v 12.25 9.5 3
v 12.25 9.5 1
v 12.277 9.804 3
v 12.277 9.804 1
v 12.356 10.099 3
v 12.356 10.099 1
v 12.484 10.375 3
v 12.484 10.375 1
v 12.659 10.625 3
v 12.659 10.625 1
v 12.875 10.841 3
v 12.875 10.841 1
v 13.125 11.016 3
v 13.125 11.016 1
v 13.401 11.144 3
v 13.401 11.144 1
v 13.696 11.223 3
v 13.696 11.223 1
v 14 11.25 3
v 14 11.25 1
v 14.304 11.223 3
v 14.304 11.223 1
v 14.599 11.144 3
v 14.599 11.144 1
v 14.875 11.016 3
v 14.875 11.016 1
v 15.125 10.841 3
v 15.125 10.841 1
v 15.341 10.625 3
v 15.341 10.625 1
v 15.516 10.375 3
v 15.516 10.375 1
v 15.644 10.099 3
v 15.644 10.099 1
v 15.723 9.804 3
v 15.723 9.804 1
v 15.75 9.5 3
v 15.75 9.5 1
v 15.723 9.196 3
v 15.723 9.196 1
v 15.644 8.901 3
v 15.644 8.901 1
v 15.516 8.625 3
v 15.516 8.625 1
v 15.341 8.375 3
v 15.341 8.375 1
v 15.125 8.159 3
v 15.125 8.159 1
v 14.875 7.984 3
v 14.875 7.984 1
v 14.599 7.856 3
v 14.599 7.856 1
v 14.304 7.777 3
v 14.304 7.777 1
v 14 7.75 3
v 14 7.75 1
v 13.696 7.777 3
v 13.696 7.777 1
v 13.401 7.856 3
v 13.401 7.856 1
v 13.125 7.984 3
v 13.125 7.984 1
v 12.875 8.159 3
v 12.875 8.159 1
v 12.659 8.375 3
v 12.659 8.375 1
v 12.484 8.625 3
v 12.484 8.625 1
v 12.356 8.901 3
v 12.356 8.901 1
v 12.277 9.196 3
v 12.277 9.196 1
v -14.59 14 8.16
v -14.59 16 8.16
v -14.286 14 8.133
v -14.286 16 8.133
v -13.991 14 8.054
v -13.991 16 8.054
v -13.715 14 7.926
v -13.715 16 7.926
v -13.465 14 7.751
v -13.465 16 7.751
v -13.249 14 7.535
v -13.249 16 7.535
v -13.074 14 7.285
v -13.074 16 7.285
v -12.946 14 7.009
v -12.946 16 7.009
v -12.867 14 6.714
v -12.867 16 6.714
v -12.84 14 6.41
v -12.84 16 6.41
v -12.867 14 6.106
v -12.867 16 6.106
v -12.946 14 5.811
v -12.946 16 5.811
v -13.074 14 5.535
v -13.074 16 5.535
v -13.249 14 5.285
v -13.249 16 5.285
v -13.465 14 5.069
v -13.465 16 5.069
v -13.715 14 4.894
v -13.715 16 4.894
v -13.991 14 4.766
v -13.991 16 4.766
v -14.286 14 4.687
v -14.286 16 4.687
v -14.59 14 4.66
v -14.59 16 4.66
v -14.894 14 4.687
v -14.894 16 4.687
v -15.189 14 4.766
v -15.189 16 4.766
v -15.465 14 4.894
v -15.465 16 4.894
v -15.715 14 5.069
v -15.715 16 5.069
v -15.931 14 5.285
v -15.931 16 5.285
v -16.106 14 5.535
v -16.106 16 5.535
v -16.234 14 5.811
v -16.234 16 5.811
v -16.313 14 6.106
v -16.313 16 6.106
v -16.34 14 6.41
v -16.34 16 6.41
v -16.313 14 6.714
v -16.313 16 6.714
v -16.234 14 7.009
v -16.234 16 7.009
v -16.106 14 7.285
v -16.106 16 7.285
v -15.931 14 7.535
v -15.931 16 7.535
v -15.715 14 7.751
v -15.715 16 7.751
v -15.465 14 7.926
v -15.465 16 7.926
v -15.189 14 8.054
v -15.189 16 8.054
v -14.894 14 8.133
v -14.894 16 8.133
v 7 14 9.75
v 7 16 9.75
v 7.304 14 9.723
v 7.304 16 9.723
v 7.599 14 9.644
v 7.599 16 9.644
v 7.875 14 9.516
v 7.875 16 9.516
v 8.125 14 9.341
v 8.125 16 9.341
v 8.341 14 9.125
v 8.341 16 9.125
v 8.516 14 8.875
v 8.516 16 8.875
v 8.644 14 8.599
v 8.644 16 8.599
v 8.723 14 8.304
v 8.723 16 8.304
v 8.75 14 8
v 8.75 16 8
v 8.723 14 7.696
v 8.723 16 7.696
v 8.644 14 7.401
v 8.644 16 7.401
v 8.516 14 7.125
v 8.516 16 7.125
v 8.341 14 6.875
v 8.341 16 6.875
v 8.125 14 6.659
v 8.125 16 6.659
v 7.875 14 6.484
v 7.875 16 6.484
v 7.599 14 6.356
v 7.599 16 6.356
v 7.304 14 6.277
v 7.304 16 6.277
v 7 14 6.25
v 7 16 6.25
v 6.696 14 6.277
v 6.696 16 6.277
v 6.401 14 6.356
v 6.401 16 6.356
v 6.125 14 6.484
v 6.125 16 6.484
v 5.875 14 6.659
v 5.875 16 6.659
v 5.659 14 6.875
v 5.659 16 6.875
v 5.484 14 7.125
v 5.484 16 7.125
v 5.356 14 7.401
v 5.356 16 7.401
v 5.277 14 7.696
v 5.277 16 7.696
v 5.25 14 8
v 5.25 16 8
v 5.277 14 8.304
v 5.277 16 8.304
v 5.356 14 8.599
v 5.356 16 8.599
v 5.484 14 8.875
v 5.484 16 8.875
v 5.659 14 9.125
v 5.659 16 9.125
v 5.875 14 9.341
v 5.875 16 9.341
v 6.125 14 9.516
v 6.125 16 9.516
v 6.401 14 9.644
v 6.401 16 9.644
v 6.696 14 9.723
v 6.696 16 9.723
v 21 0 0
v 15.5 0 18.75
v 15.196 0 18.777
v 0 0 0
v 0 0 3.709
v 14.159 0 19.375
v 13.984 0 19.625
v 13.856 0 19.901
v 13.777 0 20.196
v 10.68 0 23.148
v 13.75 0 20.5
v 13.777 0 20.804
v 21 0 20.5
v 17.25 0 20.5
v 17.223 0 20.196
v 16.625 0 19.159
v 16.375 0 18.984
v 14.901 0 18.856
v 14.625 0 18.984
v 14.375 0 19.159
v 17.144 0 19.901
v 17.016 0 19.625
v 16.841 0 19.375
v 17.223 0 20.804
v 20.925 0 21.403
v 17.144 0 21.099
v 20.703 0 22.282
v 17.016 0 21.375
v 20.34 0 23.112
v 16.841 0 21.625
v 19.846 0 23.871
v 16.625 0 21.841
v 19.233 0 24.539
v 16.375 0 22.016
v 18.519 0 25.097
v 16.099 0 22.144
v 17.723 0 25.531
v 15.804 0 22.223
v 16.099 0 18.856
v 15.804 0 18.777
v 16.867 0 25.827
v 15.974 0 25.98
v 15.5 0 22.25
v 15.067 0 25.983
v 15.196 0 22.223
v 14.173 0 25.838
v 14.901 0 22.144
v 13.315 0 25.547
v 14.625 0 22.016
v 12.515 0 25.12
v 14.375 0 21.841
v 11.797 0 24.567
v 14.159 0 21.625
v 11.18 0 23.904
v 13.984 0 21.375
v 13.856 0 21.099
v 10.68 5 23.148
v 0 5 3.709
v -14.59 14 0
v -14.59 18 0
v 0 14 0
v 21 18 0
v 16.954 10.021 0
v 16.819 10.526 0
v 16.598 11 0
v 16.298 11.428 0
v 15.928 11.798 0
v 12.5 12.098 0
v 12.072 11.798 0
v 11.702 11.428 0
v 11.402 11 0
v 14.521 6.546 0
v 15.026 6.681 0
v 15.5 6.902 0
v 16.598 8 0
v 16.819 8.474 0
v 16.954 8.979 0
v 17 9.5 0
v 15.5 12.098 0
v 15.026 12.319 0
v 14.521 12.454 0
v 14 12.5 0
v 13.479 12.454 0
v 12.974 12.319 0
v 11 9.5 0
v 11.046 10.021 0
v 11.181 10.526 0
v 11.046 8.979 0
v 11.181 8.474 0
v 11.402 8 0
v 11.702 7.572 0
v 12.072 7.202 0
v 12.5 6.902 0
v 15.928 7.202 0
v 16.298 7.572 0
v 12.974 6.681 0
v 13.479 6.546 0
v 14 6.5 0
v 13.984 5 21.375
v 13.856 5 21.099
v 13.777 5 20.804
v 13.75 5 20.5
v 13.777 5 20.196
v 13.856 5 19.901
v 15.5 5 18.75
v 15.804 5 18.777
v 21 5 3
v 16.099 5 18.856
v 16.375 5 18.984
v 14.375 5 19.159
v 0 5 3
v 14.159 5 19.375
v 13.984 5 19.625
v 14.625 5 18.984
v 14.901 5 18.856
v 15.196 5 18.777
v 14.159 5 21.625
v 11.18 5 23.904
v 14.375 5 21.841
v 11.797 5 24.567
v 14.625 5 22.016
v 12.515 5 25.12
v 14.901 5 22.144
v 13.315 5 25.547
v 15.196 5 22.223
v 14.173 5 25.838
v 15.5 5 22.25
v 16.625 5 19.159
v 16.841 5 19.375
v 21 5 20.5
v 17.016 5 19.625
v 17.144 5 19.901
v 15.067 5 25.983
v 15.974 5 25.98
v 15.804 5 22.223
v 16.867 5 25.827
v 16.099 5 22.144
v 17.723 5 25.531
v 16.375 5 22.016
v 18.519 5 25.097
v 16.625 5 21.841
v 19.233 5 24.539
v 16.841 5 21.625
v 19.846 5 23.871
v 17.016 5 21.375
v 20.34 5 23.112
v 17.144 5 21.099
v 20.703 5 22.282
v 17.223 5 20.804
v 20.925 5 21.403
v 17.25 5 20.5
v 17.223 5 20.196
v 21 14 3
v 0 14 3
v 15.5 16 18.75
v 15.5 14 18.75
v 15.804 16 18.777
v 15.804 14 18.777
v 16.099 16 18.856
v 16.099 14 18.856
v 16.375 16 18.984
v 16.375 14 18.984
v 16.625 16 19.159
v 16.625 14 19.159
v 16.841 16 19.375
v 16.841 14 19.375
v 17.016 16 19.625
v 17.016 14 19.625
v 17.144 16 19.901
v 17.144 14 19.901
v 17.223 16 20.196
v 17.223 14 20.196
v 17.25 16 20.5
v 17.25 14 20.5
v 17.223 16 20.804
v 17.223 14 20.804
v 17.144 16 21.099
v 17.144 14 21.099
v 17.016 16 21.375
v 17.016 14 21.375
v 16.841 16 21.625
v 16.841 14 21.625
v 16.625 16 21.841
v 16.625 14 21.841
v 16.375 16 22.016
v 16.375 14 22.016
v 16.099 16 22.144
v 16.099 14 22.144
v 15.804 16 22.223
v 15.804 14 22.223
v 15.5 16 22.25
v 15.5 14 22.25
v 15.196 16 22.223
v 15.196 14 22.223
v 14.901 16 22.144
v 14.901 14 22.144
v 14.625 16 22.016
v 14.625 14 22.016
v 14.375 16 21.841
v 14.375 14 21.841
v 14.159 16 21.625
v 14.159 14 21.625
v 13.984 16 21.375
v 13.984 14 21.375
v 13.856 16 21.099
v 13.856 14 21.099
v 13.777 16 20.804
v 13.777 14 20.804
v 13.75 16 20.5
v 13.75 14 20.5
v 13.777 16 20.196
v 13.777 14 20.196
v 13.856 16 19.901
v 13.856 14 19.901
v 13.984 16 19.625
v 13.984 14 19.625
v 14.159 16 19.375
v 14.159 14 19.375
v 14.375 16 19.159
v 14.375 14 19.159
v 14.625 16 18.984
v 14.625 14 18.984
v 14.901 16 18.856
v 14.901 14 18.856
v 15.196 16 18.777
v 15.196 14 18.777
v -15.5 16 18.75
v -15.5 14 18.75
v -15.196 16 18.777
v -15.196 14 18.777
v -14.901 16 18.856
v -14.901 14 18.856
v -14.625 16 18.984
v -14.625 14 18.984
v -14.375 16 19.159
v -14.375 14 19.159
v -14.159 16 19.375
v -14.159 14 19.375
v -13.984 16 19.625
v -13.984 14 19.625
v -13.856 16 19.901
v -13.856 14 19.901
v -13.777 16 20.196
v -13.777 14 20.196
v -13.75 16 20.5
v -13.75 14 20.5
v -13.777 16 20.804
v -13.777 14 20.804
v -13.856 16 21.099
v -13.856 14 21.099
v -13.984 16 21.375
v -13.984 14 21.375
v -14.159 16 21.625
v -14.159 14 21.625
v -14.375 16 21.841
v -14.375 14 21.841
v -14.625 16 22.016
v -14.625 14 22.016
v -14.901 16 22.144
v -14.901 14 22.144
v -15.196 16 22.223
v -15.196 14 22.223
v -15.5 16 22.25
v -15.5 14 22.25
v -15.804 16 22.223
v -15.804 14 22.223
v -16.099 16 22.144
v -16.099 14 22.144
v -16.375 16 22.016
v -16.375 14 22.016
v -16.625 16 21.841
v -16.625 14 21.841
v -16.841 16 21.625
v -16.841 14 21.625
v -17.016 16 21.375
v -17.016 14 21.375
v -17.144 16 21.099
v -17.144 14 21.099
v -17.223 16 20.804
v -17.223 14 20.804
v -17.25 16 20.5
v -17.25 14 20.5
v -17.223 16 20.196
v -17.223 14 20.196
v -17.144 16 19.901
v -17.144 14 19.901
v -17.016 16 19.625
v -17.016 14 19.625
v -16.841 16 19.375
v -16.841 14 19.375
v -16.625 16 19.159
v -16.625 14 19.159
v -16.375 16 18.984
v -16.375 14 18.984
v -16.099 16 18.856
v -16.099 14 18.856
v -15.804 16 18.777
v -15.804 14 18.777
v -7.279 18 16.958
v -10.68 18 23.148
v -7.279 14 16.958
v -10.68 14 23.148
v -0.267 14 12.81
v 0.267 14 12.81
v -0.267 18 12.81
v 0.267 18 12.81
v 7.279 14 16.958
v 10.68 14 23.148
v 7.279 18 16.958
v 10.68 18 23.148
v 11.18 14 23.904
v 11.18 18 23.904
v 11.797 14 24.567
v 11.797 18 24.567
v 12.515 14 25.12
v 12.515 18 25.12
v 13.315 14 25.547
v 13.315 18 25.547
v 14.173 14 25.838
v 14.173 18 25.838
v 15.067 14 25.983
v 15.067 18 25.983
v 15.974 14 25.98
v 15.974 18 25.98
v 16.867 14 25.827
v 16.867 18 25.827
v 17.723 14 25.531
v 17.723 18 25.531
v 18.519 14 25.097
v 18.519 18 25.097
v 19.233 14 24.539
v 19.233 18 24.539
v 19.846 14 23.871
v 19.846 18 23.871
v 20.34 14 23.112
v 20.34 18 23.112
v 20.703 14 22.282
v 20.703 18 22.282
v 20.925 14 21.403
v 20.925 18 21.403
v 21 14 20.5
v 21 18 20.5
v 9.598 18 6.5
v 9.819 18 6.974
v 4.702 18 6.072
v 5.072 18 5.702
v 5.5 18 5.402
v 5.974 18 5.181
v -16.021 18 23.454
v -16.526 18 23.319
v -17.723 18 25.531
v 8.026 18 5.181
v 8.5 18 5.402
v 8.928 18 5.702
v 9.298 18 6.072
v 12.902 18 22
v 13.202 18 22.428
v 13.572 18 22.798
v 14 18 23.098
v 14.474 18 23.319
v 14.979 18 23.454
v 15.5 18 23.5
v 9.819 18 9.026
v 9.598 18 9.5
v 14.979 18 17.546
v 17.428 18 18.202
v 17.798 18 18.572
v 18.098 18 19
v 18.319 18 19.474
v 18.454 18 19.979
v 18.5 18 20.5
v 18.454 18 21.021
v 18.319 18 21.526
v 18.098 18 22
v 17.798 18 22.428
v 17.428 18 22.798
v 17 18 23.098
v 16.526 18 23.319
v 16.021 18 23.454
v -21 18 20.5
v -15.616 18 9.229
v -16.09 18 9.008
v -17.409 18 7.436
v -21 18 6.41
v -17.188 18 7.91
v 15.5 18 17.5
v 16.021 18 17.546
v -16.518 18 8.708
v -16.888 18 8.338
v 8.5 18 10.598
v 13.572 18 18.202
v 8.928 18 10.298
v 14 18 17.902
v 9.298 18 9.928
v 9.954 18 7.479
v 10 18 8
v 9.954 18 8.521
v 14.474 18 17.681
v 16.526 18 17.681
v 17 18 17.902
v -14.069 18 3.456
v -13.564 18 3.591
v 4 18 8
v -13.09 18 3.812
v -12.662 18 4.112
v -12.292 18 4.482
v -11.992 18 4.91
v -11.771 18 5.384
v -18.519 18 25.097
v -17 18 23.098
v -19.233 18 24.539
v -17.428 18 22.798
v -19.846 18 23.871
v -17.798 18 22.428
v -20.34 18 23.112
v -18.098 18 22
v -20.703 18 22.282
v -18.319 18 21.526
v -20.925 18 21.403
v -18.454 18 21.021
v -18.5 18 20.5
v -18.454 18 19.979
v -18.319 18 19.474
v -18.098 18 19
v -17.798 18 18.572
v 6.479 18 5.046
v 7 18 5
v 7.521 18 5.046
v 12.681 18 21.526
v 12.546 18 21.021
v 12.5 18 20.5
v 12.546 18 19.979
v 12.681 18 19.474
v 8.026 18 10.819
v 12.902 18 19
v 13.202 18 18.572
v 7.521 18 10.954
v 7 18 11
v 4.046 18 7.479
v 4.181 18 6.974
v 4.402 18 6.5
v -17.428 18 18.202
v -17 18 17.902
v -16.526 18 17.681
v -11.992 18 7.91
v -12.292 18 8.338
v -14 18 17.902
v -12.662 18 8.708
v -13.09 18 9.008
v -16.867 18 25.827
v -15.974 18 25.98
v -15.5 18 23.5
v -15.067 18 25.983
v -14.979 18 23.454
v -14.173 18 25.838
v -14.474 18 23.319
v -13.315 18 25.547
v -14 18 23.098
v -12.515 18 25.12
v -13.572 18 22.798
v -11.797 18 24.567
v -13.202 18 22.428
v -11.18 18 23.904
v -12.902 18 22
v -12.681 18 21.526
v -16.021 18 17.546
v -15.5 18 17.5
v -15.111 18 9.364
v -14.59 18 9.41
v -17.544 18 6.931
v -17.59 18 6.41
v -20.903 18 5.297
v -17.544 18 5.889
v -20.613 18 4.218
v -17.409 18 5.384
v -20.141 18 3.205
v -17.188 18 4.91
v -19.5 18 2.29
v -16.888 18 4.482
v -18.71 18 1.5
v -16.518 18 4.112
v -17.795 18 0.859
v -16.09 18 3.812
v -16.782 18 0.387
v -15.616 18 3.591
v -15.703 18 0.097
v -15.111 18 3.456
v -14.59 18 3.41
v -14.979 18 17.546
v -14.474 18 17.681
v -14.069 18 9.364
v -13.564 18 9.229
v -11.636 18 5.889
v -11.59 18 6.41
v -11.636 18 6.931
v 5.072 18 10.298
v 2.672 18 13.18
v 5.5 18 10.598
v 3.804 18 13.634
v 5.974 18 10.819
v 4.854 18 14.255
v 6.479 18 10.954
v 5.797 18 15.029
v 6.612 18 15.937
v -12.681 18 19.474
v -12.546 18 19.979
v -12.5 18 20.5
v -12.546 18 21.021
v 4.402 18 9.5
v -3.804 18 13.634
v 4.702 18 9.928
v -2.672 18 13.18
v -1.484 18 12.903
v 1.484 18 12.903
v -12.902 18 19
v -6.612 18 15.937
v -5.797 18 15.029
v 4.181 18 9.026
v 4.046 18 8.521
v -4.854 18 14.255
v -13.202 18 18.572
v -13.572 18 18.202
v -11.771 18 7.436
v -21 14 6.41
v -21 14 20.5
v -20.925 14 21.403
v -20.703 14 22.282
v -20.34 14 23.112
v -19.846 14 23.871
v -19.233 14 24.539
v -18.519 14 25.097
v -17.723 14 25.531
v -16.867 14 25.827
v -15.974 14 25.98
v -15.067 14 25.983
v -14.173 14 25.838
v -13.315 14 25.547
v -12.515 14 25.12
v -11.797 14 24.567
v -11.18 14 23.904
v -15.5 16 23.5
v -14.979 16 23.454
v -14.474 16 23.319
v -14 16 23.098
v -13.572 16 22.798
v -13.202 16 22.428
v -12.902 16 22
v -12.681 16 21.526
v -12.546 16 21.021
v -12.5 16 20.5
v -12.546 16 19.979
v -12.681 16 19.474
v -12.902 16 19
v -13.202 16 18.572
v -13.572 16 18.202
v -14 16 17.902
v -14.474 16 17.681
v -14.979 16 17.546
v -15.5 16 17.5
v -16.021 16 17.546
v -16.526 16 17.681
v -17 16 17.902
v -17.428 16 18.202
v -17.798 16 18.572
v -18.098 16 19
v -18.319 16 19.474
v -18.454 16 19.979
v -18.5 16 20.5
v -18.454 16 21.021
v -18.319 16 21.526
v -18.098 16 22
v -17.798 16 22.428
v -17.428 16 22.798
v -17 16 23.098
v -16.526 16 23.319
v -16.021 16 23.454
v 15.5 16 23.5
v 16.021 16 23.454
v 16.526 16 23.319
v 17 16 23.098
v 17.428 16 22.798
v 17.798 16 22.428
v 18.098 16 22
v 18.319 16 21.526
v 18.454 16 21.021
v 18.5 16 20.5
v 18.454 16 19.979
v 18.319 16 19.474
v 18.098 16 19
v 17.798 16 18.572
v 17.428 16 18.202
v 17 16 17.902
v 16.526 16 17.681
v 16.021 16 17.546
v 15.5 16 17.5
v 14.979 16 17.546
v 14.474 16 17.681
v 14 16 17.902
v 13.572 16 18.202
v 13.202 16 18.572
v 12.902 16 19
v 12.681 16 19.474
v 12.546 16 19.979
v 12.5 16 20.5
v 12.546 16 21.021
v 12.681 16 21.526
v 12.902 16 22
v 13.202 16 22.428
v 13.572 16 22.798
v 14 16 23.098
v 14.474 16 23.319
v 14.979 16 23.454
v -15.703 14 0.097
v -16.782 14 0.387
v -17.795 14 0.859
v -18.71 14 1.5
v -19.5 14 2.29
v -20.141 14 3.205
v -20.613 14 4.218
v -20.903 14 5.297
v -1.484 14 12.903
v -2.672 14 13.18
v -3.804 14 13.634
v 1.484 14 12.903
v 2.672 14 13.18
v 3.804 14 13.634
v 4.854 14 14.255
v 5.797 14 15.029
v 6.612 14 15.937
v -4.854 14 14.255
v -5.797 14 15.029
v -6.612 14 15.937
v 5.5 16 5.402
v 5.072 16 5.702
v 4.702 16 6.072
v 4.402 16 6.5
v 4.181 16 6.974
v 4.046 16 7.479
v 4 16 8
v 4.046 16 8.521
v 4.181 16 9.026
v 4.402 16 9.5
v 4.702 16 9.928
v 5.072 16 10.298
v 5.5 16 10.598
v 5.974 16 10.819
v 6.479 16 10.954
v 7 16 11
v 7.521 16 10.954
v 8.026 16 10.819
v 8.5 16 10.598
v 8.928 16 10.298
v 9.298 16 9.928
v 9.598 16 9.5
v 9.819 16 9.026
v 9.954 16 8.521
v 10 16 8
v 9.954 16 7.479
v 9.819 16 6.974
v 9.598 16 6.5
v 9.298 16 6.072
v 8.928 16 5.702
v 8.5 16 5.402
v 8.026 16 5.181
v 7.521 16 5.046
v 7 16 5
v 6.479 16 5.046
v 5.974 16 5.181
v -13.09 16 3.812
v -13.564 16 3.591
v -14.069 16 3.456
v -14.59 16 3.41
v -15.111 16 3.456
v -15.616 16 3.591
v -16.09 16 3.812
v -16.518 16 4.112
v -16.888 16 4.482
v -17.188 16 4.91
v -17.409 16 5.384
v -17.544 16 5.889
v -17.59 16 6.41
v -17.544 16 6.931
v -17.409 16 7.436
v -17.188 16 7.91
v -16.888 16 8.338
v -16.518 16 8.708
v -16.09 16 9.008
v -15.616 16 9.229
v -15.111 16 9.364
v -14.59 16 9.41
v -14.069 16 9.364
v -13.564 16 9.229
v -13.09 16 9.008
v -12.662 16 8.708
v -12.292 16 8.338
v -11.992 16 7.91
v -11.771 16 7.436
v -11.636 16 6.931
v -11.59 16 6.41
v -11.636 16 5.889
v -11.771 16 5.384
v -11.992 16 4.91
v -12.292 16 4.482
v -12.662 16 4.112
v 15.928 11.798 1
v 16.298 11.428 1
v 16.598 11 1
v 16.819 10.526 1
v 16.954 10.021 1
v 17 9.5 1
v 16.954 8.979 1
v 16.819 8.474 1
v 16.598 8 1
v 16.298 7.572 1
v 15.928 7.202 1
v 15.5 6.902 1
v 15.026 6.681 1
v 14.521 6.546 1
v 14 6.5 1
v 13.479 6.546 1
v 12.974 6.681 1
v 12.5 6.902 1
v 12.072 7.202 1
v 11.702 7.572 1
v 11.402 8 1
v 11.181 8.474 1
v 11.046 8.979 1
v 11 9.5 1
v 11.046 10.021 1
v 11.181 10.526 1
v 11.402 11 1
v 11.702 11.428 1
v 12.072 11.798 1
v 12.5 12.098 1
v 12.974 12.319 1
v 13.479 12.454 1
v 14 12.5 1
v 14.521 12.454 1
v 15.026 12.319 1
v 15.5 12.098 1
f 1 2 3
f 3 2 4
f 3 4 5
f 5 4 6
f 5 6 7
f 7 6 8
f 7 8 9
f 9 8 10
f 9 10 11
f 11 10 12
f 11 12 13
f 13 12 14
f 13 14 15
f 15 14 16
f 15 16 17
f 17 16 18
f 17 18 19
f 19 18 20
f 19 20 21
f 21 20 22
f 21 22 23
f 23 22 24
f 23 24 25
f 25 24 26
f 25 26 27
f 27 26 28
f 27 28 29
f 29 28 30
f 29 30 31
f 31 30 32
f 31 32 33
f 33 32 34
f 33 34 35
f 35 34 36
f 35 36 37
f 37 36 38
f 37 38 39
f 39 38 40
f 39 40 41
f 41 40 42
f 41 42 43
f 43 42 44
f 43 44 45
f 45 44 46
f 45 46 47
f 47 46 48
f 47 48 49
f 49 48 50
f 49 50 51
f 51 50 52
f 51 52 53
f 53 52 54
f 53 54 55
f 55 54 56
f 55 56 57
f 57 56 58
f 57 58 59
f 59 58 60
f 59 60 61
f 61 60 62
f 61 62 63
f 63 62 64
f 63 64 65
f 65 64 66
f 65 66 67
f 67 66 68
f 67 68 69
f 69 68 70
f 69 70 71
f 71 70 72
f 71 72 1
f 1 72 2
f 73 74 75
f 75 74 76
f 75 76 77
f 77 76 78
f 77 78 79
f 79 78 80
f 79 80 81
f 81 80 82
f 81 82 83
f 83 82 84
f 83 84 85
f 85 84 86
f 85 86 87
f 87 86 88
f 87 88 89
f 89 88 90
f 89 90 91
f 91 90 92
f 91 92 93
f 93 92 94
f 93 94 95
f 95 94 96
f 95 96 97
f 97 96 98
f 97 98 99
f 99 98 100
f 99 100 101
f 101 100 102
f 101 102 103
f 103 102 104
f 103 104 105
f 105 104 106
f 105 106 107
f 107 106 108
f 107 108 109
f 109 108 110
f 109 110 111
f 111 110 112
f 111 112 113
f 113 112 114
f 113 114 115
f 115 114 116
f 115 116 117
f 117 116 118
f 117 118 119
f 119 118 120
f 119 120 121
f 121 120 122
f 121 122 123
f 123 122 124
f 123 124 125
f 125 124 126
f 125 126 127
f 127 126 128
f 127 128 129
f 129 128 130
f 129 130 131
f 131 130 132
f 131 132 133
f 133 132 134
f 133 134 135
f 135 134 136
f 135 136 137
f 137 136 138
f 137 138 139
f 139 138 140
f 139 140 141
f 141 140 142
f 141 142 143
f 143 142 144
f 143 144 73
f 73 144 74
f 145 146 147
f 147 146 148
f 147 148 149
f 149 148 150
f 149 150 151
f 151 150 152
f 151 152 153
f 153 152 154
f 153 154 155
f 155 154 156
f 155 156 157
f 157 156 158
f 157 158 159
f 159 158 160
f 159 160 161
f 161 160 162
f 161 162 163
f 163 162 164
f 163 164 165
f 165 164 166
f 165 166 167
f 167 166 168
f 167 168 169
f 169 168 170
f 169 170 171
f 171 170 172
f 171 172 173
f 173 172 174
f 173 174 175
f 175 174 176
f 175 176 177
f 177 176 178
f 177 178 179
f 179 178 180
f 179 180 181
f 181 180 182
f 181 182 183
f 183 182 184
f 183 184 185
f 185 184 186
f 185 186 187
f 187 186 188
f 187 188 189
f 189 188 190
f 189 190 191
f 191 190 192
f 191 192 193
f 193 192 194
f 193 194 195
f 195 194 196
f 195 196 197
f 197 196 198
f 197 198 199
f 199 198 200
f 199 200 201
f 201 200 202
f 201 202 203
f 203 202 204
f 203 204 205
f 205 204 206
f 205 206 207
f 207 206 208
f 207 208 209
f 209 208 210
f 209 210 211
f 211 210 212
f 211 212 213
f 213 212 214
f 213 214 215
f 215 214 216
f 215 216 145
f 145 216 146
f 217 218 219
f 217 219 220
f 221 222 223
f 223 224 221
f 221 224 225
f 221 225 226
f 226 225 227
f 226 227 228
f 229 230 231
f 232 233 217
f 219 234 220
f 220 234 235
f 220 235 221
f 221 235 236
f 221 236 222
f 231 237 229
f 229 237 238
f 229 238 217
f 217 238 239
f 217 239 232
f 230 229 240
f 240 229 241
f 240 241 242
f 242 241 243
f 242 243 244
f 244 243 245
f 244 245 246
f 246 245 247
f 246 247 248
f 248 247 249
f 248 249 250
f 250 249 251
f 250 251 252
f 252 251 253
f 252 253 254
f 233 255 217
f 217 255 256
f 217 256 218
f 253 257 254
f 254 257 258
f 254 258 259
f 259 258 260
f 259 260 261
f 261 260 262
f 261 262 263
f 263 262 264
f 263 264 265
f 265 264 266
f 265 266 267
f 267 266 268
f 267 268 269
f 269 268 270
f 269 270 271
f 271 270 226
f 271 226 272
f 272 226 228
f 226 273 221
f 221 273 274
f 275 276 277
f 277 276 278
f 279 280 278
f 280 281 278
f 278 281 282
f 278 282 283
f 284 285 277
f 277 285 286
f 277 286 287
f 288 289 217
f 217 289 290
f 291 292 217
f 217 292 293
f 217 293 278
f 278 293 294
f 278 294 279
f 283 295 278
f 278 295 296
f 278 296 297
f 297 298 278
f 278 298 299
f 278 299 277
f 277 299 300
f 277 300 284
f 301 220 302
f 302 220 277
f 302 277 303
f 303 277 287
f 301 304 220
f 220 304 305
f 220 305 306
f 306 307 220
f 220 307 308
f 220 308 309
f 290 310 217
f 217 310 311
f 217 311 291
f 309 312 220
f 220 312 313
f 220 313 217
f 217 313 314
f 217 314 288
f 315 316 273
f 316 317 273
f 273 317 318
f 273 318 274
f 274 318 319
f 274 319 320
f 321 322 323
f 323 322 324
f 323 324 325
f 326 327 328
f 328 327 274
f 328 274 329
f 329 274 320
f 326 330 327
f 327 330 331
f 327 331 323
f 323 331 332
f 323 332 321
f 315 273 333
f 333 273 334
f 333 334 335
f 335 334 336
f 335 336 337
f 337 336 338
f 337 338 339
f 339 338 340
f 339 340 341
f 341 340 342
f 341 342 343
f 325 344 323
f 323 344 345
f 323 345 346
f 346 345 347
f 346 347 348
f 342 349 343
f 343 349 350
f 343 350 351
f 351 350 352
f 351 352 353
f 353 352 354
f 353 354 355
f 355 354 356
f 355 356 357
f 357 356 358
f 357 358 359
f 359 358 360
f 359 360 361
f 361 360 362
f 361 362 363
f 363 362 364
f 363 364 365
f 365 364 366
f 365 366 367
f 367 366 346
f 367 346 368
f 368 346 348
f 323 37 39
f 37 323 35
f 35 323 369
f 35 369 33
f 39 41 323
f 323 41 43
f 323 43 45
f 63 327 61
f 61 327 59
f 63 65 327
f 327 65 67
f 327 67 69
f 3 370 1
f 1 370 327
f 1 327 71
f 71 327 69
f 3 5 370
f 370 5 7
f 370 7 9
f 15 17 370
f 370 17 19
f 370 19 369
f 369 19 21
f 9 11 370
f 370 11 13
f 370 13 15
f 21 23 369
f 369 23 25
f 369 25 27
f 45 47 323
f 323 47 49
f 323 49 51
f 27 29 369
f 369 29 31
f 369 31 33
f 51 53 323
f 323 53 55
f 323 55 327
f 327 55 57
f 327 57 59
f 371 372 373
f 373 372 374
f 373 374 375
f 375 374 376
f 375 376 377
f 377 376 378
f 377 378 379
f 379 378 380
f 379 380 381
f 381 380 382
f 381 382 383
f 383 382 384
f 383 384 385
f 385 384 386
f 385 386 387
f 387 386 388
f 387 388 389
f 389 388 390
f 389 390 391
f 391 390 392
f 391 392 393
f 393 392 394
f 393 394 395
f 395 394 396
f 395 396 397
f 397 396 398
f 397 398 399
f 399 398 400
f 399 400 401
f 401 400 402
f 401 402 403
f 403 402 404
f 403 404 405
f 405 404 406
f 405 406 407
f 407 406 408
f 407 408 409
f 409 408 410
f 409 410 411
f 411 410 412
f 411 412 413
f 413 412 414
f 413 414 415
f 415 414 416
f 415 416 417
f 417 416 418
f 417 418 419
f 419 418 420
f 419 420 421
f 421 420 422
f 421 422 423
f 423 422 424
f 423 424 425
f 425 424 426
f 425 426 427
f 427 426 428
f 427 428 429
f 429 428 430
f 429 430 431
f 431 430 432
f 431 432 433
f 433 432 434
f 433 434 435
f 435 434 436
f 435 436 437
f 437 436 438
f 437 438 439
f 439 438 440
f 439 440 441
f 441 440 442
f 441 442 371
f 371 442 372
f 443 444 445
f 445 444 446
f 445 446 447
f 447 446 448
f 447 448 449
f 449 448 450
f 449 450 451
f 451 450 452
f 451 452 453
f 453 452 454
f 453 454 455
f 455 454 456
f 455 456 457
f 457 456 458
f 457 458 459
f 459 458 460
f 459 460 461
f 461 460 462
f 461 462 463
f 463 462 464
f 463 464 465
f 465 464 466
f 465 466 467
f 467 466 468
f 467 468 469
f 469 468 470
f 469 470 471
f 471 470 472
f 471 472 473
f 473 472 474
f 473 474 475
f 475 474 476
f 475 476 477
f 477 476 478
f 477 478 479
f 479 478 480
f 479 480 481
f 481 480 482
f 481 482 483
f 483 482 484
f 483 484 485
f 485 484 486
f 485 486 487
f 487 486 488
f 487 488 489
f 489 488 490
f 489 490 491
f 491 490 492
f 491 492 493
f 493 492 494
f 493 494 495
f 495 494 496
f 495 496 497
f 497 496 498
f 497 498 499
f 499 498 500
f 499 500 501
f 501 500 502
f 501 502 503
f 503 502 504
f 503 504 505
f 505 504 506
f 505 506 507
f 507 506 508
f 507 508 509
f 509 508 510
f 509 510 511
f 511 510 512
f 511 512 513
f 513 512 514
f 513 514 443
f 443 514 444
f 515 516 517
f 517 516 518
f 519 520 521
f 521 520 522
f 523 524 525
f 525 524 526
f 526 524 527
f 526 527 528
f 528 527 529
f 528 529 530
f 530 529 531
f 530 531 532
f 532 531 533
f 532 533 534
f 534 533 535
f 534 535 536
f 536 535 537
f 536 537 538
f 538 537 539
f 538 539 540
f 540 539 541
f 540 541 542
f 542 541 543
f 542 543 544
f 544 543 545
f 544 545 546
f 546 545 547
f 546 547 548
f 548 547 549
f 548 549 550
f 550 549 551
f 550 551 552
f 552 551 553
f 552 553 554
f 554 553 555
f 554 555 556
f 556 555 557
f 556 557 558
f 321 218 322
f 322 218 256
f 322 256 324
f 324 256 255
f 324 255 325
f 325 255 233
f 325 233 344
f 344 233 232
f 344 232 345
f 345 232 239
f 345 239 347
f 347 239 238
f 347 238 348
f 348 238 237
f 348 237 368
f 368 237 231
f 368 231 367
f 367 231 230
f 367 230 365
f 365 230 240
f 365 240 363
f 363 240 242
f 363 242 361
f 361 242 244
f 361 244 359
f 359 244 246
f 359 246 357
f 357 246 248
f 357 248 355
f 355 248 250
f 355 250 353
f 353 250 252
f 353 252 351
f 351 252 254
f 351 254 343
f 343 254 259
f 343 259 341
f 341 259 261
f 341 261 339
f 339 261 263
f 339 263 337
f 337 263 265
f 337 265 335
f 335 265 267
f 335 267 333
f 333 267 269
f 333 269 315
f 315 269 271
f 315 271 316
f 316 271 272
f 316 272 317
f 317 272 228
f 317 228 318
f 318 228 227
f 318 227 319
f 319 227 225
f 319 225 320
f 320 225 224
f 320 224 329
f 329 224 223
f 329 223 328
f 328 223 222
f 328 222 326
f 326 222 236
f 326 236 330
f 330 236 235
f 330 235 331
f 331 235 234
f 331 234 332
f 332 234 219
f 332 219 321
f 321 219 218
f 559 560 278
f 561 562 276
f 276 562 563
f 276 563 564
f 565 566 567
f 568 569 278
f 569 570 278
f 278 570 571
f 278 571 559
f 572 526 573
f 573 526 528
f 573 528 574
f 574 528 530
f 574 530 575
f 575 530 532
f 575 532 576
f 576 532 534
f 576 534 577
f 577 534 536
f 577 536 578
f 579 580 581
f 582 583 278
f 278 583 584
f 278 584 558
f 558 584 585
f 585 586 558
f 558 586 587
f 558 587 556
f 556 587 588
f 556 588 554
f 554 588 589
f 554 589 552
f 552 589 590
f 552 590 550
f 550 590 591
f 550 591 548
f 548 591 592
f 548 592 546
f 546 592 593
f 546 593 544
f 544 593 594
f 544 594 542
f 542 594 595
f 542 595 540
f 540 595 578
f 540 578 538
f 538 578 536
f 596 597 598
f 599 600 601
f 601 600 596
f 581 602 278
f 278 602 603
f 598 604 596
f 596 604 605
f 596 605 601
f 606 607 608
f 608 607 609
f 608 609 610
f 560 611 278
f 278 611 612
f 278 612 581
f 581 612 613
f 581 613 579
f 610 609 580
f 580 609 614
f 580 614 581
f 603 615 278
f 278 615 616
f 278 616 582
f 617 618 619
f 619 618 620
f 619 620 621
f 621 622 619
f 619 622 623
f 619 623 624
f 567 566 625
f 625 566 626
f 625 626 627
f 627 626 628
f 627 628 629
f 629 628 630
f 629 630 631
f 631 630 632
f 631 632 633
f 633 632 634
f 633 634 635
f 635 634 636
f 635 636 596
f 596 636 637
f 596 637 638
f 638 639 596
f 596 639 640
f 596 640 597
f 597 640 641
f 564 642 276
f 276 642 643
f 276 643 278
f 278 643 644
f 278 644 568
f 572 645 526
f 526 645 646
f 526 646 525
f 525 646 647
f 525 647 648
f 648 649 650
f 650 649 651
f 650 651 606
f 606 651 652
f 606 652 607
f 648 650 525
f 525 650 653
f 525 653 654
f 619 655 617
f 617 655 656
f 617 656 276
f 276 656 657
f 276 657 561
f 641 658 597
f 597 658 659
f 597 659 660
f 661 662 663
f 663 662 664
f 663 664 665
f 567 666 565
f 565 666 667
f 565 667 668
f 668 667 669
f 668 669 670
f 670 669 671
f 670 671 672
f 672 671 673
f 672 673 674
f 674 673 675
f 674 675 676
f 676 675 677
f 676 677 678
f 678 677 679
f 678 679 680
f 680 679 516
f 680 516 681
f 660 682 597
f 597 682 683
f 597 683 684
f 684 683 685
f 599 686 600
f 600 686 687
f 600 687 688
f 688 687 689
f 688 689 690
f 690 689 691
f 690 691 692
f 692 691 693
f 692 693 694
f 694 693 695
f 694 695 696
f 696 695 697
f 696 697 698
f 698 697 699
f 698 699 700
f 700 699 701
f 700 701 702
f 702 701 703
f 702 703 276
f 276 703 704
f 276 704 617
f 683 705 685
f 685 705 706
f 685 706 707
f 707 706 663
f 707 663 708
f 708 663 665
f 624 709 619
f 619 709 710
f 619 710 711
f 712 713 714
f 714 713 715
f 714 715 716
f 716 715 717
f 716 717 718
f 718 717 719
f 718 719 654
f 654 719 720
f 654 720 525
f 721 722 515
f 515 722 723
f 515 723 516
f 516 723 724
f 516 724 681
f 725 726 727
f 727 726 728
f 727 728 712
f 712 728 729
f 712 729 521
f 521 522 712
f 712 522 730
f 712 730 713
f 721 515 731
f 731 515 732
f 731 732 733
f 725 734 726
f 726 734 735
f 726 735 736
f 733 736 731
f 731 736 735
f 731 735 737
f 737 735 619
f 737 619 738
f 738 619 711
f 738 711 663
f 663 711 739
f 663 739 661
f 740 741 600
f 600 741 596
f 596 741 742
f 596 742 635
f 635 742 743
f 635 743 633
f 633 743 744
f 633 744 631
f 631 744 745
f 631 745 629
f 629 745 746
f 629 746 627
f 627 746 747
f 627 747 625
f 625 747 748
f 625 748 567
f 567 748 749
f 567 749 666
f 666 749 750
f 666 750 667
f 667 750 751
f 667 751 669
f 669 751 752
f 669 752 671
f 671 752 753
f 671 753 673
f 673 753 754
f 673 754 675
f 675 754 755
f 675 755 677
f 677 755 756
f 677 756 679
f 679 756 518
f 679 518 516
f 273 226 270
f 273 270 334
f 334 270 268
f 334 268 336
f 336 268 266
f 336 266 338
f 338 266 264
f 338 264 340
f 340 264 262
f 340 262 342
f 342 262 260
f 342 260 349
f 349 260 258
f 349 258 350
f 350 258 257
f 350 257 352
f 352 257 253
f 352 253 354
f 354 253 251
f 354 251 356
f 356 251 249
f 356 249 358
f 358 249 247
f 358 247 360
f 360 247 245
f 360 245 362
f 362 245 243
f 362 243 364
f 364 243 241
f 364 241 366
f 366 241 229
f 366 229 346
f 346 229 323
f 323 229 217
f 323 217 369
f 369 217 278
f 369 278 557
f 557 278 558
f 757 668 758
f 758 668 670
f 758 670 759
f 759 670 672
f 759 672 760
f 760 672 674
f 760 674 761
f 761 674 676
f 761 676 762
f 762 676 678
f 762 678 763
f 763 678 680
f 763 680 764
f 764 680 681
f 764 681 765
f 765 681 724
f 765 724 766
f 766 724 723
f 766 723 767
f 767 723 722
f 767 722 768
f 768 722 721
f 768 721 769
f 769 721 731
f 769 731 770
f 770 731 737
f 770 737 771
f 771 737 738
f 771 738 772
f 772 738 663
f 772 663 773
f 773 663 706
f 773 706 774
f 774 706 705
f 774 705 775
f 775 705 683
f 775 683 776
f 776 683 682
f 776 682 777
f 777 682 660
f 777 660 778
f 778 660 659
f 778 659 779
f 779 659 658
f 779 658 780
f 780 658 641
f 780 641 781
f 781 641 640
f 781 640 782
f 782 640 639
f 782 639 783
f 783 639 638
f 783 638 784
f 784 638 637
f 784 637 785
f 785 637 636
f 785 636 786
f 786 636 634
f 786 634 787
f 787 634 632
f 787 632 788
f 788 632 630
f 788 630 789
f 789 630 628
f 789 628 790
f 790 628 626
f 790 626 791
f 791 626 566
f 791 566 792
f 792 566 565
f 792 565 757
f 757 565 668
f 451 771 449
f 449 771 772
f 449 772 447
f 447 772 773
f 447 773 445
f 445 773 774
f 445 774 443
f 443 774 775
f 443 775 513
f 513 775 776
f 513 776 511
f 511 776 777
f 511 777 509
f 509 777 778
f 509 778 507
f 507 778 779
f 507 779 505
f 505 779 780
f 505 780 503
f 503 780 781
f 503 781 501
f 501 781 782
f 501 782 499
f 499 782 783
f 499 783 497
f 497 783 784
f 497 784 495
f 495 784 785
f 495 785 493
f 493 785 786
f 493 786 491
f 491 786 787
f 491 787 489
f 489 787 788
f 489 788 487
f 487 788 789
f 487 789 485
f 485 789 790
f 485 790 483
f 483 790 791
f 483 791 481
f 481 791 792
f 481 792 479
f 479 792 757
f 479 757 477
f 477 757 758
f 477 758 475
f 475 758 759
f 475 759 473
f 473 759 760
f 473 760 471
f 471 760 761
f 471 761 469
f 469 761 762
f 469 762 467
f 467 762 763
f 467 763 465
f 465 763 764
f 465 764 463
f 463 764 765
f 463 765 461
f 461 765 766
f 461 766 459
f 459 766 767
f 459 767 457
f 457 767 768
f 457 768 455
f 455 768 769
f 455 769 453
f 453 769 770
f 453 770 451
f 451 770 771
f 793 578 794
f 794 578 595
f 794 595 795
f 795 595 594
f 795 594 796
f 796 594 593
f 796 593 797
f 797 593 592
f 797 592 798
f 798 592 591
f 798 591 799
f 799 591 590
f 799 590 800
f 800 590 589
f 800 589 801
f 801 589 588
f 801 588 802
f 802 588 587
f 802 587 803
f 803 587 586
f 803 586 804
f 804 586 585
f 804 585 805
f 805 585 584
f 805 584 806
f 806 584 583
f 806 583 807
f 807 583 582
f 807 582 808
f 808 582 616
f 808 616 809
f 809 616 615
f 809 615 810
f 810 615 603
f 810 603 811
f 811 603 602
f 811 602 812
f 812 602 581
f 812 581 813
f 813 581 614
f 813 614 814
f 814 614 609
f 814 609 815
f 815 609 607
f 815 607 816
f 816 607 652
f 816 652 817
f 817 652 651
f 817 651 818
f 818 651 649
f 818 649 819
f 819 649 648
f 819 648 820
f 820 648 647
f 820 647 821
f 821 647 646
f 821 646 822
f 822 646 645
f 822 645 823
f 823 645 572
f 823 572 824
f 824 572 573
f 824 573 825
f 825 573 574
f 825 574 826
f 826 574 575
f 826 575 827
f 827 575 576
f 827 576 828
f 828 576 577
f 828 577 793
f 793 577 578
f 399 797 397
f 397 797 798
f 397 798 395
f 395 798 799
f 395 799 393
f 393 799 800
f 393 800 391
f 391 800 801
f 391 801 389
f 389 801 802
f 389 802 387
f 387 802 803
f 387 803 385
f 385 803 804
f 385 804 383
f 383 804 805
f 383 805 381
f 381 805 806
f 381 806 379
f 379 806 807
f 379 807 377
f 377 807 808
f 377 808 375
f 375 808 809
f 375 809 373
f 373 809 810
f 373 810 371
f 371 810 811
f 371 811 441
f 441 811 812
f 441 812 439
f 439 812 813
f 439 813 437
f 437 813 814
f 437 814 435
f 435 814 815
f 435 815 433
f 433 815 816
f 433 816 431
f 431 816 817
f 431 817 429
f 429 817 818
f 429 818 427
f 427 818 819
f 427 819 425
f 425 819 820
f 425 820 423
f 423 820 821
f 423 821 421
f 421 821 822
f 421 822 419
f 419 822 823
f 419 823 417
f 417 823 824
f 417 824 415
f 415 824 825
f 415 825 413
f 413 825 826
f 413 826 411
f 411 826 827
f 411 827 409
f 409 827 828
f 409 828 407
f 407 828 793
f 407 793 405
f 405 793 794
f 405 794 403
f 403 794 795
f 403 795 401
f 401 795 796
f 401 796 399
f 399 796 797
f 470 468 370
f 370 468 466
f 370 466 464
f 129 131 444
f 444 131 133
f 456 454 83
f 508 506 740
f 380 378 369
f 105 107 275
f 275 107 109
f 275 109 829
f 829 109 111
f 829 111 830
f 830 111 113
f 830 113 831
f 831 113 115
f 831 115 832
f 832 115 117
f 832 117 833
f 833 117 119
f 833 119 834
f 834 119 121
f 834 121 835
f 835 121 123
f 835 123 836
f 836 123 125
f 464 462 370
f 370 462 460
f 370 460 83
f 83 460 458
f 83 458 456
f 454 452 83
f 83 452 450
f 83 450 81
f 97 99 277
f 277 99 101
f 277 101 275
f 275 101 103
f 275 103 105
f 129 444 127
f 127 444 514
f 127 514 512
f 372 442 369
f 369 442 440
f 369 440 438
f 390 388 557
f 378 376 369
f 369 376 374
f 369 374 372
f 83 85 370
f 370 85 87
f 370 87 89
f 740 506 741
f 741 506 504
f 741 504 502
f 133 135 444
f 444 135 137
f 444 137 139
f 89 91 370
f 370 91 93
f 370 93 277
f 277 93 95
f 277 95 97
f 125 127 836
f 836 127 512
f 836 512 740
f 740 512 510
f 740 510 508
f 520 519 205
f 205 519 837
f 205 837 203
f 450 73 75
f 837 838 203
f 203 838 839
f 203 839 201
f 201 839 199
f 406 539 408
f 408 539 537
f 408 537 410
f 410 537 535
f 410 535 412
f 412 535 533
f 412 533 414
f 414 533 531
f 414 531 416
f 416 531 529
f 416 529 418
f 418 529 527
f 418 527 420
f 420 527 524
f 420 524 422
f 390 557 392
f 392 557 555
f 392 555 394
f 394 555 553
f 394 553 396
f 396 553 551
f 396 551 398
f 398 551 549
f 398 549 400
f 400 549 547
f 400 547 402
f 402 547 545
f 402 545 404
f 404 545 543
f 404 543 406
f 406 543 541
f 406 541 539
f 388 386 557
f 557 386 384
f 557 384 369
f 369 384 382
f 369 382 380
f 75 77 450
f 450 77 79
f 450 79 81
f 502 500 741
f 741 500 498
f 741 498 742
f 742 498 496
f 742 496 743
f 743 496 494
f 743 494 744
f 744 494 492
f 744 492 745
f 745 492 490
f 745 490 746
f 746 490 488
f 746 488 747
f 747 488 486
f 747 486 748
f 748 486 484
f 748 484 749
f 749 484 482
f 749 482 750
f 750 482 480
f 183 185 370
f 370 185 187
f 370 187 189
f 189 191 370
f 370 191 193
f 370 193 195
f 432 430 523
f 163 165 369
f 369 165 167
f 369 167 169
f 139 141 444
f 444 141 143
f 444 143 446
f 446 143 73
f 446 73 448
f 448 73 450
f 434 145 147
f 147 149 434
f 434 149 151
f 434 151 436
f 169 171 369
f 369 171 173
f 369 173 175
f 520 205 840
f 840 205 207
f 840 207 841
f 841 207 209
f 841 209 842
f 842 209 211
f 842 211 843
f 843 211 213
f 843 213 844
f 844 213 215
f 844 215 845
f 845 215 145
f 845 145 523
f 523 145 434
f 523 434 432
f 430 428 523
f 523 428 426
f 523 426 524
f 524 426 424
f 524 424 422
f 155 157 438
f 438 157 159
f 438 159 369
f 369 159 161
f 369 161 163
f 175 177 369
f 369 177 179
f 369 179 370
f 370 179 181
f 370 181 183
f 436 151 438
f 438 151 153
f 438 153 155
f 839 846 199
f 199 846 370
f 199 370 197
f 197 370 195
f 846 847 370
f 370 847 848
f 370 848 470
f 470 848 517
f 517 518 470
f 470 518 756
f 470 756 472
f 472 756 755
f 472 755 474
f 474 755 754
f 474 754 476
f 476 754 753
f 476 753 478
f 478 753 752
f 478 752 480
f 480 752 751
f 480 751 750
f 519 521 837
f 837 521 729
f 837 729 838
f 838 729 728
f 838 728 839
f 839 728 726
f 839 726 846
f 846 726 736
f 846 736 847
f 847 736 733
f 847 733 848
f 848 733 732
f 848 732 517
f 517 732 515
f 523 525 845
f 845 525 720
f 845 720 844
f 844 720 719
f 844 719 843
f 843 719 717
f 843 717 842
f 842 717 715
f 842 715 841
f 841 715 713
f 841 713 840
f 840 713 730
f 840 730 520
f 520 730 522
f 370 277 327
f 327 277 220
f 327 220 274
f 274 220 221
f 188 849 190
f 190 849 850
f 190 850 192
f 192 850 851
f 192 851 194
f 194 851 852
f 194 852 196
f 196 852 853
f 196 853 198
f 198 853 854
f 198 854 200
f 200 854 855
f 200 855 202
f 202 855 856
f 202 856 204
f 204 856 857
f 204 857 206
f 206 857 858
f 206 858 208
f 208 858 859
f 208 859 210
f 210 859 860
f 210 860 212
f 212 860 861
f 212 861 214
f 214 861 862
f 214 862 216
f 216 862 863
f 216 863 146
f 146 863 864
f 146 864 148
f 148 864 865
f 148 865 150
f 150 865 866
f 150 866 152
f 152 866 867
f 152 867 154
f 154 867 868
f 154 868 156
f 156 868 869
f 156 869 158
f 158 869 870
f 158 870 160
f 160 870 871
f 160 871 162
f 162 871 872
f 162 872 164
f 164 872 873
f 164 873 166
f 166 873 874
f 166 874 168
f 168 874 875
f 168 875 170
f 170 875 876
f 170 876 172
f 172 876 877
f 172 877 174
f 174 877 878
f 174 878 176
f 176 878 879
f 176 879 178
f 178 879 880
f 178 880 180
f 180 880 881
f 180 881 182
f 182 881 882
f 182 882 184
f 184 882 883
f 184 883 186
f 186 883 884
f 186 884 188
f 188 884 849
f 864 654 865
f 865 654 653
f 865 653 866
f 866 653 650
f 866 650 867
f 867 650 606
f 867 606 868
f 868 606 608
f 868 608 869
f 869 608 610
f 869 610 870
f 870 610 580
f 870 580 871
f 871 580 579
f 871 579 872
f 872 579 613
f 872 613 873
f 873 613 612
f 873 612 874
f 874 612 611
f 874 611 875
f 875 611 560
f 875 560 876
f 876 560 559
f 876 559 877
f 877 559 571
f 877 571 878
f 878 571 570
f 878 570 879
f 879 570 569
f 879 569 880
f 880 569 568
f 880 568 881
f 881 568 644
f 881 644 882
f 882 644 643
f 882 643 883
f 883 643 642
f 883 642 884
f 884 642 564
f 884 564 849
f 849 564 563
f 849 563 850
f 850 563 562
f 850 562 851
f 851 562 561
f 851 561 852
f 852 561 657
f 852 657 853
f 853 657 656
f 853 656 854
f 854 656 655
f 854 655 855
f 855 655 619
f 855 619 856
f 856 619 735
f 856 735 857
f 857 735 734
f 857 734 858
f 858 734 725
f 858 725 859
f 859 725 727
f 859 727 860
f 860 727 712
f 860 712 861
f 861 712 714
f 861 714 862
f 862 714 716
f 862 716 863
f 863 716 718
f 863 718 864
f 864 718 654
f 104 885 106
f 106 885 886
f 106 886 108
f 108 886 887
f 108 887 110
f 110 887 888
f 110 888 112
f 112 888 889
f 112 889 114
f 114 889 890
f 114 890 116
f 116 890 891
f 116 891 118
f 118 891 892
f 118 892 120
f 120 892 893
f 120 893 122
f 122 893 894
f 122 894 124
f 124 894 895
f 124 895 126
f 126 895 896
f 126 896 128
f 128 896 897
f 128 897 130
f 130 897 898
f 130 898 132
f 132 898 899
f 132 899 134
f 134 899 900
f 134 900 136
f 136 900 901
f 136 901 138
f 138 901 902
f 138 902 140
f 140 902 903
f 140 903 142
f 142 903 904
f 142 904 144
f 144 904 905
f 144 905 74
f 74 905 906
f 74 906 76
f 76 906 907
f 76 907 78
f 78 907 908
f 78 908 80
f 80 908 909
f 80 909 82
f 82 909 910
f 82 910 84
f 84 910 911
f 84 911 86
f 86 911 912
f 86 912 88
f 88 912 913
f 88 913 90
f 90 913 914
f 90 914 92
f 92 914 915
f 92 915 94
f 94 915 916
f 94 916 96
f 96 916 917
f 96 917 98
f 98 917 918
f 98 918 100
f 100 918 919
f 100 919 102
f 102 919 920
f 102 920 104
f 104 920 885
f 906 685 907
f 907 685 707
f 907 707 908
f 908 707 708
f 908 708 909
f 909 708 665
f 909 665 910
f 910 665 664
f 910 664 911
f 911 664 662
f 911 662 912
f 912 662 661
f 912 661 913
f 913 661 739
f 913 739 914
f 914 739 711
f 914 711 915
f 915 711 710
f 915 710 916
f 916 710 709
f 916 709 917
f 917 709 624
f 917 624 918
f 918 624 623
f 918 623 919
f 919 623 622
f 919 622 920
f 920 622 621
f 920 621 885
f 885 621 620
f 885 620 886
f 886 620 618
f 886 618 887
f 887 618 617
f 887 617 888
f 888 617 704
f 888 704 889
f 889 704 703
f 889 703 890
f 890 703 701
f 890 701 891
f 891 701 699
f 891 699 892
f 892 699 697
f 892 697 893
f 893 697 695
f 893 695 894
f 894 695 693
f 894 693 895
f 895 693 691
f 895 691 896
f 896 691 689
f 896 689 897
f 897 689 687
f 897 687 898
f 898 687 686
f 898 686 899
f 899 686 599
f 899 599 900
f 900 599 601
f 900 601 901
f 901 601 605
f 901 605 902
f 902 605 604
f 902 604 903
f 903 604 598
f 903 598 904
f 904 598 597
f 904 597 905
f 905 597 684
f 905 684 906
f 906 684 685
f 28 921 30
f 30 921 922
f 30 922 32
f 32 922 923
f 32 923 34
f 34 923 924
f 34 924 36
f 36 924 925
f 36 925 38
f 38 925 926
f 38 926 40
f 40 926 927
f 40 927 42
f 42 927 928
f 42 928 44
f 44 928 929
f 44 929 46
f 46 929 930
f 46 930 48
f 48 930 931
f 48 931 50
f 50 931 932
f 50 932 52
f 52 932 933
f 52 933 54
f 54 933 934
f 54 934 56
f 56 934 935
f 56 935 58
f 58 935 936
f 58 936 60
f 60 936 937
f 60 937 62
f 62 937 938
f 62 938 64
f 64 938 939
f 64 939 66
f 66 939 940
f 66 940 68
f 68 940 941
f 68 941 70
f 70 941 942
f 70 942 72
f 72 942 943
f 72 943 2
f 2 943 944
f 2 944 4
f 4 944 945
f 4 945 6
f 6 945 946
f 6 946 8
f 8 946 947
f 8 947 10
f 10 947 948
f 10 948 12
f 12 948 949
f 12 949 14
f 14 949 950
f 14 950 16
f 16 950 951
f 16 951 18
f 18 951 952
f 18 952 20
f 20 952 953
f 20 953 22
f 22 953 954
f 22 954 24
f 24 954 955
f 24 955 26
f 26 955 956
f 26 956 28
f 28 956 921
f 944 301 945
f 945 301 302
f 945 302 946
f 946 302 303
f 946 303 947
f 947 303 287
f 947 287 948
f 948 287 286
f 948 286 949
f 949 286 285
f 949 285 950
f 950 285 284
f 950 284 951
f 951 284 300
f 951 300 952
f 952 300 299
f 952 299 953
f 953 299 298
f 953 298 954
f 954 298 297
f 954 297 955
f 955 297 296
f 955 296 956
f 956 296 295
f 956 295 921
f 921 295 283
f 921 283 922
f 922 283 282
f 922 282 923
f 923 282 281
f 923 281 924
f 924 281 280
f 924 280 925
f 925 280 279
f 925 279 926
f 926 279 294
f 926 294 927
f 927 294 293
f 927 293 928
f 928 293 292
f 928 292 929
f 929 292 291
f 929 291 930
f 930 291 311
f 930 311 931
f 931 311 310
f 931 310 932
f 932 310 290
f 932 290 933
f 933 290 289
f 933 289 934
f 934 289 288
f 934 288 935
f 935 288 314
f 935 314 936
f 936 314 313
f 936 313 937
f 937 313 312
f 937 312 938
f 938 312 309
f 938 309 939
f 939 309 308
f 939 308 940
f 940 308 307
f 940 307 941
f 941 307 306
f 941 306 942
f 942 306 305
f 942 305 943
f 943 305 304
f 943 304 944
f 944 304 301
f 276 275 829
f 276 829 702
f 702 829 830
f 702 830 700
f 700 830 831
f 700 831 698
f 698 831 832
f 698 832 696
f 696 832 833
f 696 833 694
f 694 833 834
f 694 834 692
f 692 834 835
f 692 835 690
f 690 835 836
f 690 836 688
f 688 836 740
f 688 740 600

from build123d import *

# Parameters (mm, degrees)
SKETCH1_R           = 1.75
BOSS_EXTRUDE1_DEPTH = 18
SKETCH2_R           = 3
CUT_EXTRUDE1_DEPTH  = 2
CUT_EXTRUDE2_START  = -3
SKETCH4_W           = 42
SKETCH4_H           = 9
CUT_EXTRUDE2_DEPTH  = 35.960505792
CUT_EXTRUDE3_DEPTH  = 14
FILLET1_R           = 8
CUT_EXTRUDE4_DEPTH  = 37.235341864
SKETCH8_R           = 1.75
CUT_EXTRUDE5_DEPTH  = 7
SKETCH9_R           = 1.75
CUT_EXTRUDE6_DEPTH  = 10
SKETCH10_R          = 3
CUT_EXTRUDE7_DEPTH  = 2
SKETCH11_R          = 3
CUT_EXTRUDE8_DEPTH  = 1
FILLET2_R           = 6.41


with BuildPart() as part:
    # Sketch1 → Boss-Extrude1 (new body)
    with BuildSketch(Plane(origin=(0, 0, 0), x_dir=(1, 0, 0), z_dir=(0, 1, 0))):
        with BuildLine():
            Line((-21, 0), (21, 0))
            Line((21, 0), (21, -20.5))
            ThreePointArc((21, -20.5), (16.867011836, -25.827408248), (10.67953504, -23.148229139))
            Line((10.67953504, -23.148229139), (5, -12.81))
            Line((5, -12.81), (-5, -12.81))
            Line((-5, -12.81), (-10.67953504, -23.148229139))
            ThreePointArc((-10.67953504, -23.148229139), (-16.867011836, -25.827408248), (-21, -20.5))
            Line((-21, -20.5), (-21, 0))
        make_face()
        with Locations(Location((15.5, -20.5, 0), (0, 0, 270))):
            Circle(SKETCH1_R, mode=Mode.SUBTRACT)
        with Locations(Location((-15.5, -20.5, 0), (0, 0, 270))):
            Circle(SKETCH1_R, mode=Mode.SUBTRACT)
    extrude(amount=BOSS_EXTRUDE1_DEPTH)

    # Sketch2 → Cut-Extrude1 (cut)
    with BuildSketch(Plane(origin=(0, 18, 0), x_dir=(1, 0, 0), z_dir=(0, 1, 0))):
        with Locations(Location((-15.5, -20.5, 0), (0, 0, 270))):
            Circle(SKETCH2_R)
        with Locations(Location((15.5, -20.5, 0), (0, 0, 270))):
            Circle(SKETCH2_R)
    extrude(amount=-CUT_EXTRUDE1_DEPTH, mode=Mode.SUBTRACT)

    # Sketch4 → Cut-Extrude2 (cut, through all)
    with BuildSketch(Plane(origin=(0, 0, 0), x_dir=(-1, 0, 0), z_dir=(0, 0, -1)).offset(CUT_EXTRUDE2_START)):
        with Locations((0, 9.5)):
            Rectangle(SKETCH4_W, SKETCH4_H)
    extrude(amount=-CUT_EXTRUDE2_DEPTH, mode=Mode.SUBTRACT)

    # Sketch6 → Cut-Extrude3 (cut)
    with BuildSketch(Plane.XZ):
        Polygon((5, 12.81), (-2.037457082, 0), (-21, 0), (-21, 28.272610559), (5, 28.272610559), align=None)
    extrude(amount=-CUT_EXTRUDE3_DEPTH, mode=Mode.SUBTRACT)

    # Fillet1
    fillet1_edges = [part.edges().sort_by_distance(p)[0] for p in [
        (5, 16, 12.81),
        (-5, 16, 12.81),
    ]]
    fillet(fillet1_edges, radius=FILLET1_R)

    # Sketch7 → Cut-Extrude4 (cut, through all)
    with BuildSketch(Plane.XZ.offset(-14)):
        Polygon((0, 0), (0, 4.340639875), (-2.037457082, 0), align=None)
    extrude(amount=CUT_EXTRUDE4_DEPTH, mode=Mode.SUBTRACT)

    # Sketch8 → Cut-Extrude5 (cut)
    with BuildSketch(Plane(origin=(0, 0, 0), x_dir=(-1, 0, 0), z_dir=(0, 0, -1))):
        with Locations((-14, 9.5)):
            Circle(SKETCH8_R)
    extrude(amount=-CUT_EXTRUDE5_DEPTH, mode=Mode.SUBTRACT)

    # Sketch9 → Cut-Extrude6 (cut)
    with BuildSketch(Plane(origin=(0, 18, 0), x_dir=(1, 0, 0), z_dir=(0, 1, 0))):
        with Locations(Location((7, -8, 0), (0, 0, 270))):
            Circle(SKETCH9_R)
        with Locations(Location((-14.59, -6.41, 0), (0, 0, 270))):
            Circle(SKETCH9_R)
    extrude(amount=-CUT_EXTRUDE6_DEPTH, mode=Mode.SUBTRACT)

    # Sketch10 → Cut-Extrude7 (cut)
    with BuildSketch(Plane(origin=(0, 18, 0), x_dir=(1, 0, 0), z_dir=(0, 1, 0))):
        with Locations(Location((7, -8, 0), (0, 0, 270))):
            Circle(SKETCH10_R)
        with Locations(Location((-14.59, -6.41, 0), (0, 0, 270))):
            Circle(SKETCH10_R)
    extrude(amount=-CUT_EXTRUDE7_DEPTH, mode=Mode.SUBTRACT)

    # Sketch11 → Cut-Extrude8 (cut)
    with BuildSketch(Plane(origin=(0, 0, 0), x_dir=(-1, 0, 0), z_dir=(0, 0, -1))):
        with Locations((-14, 9.5)):
            Circle(SKETCH11_R)
    extrude(amount=-CUT_EXTRUDE8_DEPTH, mode=Mode.SUBTRACT)

    # Fillet2
    fillet2_edges = [part.edges().sort_by_distance(p)[0] for p in [
        (-21, 16, 0),
    ]]
    fillet(fillet2_edges, radius=FILLET2_R)


solid = part.part
